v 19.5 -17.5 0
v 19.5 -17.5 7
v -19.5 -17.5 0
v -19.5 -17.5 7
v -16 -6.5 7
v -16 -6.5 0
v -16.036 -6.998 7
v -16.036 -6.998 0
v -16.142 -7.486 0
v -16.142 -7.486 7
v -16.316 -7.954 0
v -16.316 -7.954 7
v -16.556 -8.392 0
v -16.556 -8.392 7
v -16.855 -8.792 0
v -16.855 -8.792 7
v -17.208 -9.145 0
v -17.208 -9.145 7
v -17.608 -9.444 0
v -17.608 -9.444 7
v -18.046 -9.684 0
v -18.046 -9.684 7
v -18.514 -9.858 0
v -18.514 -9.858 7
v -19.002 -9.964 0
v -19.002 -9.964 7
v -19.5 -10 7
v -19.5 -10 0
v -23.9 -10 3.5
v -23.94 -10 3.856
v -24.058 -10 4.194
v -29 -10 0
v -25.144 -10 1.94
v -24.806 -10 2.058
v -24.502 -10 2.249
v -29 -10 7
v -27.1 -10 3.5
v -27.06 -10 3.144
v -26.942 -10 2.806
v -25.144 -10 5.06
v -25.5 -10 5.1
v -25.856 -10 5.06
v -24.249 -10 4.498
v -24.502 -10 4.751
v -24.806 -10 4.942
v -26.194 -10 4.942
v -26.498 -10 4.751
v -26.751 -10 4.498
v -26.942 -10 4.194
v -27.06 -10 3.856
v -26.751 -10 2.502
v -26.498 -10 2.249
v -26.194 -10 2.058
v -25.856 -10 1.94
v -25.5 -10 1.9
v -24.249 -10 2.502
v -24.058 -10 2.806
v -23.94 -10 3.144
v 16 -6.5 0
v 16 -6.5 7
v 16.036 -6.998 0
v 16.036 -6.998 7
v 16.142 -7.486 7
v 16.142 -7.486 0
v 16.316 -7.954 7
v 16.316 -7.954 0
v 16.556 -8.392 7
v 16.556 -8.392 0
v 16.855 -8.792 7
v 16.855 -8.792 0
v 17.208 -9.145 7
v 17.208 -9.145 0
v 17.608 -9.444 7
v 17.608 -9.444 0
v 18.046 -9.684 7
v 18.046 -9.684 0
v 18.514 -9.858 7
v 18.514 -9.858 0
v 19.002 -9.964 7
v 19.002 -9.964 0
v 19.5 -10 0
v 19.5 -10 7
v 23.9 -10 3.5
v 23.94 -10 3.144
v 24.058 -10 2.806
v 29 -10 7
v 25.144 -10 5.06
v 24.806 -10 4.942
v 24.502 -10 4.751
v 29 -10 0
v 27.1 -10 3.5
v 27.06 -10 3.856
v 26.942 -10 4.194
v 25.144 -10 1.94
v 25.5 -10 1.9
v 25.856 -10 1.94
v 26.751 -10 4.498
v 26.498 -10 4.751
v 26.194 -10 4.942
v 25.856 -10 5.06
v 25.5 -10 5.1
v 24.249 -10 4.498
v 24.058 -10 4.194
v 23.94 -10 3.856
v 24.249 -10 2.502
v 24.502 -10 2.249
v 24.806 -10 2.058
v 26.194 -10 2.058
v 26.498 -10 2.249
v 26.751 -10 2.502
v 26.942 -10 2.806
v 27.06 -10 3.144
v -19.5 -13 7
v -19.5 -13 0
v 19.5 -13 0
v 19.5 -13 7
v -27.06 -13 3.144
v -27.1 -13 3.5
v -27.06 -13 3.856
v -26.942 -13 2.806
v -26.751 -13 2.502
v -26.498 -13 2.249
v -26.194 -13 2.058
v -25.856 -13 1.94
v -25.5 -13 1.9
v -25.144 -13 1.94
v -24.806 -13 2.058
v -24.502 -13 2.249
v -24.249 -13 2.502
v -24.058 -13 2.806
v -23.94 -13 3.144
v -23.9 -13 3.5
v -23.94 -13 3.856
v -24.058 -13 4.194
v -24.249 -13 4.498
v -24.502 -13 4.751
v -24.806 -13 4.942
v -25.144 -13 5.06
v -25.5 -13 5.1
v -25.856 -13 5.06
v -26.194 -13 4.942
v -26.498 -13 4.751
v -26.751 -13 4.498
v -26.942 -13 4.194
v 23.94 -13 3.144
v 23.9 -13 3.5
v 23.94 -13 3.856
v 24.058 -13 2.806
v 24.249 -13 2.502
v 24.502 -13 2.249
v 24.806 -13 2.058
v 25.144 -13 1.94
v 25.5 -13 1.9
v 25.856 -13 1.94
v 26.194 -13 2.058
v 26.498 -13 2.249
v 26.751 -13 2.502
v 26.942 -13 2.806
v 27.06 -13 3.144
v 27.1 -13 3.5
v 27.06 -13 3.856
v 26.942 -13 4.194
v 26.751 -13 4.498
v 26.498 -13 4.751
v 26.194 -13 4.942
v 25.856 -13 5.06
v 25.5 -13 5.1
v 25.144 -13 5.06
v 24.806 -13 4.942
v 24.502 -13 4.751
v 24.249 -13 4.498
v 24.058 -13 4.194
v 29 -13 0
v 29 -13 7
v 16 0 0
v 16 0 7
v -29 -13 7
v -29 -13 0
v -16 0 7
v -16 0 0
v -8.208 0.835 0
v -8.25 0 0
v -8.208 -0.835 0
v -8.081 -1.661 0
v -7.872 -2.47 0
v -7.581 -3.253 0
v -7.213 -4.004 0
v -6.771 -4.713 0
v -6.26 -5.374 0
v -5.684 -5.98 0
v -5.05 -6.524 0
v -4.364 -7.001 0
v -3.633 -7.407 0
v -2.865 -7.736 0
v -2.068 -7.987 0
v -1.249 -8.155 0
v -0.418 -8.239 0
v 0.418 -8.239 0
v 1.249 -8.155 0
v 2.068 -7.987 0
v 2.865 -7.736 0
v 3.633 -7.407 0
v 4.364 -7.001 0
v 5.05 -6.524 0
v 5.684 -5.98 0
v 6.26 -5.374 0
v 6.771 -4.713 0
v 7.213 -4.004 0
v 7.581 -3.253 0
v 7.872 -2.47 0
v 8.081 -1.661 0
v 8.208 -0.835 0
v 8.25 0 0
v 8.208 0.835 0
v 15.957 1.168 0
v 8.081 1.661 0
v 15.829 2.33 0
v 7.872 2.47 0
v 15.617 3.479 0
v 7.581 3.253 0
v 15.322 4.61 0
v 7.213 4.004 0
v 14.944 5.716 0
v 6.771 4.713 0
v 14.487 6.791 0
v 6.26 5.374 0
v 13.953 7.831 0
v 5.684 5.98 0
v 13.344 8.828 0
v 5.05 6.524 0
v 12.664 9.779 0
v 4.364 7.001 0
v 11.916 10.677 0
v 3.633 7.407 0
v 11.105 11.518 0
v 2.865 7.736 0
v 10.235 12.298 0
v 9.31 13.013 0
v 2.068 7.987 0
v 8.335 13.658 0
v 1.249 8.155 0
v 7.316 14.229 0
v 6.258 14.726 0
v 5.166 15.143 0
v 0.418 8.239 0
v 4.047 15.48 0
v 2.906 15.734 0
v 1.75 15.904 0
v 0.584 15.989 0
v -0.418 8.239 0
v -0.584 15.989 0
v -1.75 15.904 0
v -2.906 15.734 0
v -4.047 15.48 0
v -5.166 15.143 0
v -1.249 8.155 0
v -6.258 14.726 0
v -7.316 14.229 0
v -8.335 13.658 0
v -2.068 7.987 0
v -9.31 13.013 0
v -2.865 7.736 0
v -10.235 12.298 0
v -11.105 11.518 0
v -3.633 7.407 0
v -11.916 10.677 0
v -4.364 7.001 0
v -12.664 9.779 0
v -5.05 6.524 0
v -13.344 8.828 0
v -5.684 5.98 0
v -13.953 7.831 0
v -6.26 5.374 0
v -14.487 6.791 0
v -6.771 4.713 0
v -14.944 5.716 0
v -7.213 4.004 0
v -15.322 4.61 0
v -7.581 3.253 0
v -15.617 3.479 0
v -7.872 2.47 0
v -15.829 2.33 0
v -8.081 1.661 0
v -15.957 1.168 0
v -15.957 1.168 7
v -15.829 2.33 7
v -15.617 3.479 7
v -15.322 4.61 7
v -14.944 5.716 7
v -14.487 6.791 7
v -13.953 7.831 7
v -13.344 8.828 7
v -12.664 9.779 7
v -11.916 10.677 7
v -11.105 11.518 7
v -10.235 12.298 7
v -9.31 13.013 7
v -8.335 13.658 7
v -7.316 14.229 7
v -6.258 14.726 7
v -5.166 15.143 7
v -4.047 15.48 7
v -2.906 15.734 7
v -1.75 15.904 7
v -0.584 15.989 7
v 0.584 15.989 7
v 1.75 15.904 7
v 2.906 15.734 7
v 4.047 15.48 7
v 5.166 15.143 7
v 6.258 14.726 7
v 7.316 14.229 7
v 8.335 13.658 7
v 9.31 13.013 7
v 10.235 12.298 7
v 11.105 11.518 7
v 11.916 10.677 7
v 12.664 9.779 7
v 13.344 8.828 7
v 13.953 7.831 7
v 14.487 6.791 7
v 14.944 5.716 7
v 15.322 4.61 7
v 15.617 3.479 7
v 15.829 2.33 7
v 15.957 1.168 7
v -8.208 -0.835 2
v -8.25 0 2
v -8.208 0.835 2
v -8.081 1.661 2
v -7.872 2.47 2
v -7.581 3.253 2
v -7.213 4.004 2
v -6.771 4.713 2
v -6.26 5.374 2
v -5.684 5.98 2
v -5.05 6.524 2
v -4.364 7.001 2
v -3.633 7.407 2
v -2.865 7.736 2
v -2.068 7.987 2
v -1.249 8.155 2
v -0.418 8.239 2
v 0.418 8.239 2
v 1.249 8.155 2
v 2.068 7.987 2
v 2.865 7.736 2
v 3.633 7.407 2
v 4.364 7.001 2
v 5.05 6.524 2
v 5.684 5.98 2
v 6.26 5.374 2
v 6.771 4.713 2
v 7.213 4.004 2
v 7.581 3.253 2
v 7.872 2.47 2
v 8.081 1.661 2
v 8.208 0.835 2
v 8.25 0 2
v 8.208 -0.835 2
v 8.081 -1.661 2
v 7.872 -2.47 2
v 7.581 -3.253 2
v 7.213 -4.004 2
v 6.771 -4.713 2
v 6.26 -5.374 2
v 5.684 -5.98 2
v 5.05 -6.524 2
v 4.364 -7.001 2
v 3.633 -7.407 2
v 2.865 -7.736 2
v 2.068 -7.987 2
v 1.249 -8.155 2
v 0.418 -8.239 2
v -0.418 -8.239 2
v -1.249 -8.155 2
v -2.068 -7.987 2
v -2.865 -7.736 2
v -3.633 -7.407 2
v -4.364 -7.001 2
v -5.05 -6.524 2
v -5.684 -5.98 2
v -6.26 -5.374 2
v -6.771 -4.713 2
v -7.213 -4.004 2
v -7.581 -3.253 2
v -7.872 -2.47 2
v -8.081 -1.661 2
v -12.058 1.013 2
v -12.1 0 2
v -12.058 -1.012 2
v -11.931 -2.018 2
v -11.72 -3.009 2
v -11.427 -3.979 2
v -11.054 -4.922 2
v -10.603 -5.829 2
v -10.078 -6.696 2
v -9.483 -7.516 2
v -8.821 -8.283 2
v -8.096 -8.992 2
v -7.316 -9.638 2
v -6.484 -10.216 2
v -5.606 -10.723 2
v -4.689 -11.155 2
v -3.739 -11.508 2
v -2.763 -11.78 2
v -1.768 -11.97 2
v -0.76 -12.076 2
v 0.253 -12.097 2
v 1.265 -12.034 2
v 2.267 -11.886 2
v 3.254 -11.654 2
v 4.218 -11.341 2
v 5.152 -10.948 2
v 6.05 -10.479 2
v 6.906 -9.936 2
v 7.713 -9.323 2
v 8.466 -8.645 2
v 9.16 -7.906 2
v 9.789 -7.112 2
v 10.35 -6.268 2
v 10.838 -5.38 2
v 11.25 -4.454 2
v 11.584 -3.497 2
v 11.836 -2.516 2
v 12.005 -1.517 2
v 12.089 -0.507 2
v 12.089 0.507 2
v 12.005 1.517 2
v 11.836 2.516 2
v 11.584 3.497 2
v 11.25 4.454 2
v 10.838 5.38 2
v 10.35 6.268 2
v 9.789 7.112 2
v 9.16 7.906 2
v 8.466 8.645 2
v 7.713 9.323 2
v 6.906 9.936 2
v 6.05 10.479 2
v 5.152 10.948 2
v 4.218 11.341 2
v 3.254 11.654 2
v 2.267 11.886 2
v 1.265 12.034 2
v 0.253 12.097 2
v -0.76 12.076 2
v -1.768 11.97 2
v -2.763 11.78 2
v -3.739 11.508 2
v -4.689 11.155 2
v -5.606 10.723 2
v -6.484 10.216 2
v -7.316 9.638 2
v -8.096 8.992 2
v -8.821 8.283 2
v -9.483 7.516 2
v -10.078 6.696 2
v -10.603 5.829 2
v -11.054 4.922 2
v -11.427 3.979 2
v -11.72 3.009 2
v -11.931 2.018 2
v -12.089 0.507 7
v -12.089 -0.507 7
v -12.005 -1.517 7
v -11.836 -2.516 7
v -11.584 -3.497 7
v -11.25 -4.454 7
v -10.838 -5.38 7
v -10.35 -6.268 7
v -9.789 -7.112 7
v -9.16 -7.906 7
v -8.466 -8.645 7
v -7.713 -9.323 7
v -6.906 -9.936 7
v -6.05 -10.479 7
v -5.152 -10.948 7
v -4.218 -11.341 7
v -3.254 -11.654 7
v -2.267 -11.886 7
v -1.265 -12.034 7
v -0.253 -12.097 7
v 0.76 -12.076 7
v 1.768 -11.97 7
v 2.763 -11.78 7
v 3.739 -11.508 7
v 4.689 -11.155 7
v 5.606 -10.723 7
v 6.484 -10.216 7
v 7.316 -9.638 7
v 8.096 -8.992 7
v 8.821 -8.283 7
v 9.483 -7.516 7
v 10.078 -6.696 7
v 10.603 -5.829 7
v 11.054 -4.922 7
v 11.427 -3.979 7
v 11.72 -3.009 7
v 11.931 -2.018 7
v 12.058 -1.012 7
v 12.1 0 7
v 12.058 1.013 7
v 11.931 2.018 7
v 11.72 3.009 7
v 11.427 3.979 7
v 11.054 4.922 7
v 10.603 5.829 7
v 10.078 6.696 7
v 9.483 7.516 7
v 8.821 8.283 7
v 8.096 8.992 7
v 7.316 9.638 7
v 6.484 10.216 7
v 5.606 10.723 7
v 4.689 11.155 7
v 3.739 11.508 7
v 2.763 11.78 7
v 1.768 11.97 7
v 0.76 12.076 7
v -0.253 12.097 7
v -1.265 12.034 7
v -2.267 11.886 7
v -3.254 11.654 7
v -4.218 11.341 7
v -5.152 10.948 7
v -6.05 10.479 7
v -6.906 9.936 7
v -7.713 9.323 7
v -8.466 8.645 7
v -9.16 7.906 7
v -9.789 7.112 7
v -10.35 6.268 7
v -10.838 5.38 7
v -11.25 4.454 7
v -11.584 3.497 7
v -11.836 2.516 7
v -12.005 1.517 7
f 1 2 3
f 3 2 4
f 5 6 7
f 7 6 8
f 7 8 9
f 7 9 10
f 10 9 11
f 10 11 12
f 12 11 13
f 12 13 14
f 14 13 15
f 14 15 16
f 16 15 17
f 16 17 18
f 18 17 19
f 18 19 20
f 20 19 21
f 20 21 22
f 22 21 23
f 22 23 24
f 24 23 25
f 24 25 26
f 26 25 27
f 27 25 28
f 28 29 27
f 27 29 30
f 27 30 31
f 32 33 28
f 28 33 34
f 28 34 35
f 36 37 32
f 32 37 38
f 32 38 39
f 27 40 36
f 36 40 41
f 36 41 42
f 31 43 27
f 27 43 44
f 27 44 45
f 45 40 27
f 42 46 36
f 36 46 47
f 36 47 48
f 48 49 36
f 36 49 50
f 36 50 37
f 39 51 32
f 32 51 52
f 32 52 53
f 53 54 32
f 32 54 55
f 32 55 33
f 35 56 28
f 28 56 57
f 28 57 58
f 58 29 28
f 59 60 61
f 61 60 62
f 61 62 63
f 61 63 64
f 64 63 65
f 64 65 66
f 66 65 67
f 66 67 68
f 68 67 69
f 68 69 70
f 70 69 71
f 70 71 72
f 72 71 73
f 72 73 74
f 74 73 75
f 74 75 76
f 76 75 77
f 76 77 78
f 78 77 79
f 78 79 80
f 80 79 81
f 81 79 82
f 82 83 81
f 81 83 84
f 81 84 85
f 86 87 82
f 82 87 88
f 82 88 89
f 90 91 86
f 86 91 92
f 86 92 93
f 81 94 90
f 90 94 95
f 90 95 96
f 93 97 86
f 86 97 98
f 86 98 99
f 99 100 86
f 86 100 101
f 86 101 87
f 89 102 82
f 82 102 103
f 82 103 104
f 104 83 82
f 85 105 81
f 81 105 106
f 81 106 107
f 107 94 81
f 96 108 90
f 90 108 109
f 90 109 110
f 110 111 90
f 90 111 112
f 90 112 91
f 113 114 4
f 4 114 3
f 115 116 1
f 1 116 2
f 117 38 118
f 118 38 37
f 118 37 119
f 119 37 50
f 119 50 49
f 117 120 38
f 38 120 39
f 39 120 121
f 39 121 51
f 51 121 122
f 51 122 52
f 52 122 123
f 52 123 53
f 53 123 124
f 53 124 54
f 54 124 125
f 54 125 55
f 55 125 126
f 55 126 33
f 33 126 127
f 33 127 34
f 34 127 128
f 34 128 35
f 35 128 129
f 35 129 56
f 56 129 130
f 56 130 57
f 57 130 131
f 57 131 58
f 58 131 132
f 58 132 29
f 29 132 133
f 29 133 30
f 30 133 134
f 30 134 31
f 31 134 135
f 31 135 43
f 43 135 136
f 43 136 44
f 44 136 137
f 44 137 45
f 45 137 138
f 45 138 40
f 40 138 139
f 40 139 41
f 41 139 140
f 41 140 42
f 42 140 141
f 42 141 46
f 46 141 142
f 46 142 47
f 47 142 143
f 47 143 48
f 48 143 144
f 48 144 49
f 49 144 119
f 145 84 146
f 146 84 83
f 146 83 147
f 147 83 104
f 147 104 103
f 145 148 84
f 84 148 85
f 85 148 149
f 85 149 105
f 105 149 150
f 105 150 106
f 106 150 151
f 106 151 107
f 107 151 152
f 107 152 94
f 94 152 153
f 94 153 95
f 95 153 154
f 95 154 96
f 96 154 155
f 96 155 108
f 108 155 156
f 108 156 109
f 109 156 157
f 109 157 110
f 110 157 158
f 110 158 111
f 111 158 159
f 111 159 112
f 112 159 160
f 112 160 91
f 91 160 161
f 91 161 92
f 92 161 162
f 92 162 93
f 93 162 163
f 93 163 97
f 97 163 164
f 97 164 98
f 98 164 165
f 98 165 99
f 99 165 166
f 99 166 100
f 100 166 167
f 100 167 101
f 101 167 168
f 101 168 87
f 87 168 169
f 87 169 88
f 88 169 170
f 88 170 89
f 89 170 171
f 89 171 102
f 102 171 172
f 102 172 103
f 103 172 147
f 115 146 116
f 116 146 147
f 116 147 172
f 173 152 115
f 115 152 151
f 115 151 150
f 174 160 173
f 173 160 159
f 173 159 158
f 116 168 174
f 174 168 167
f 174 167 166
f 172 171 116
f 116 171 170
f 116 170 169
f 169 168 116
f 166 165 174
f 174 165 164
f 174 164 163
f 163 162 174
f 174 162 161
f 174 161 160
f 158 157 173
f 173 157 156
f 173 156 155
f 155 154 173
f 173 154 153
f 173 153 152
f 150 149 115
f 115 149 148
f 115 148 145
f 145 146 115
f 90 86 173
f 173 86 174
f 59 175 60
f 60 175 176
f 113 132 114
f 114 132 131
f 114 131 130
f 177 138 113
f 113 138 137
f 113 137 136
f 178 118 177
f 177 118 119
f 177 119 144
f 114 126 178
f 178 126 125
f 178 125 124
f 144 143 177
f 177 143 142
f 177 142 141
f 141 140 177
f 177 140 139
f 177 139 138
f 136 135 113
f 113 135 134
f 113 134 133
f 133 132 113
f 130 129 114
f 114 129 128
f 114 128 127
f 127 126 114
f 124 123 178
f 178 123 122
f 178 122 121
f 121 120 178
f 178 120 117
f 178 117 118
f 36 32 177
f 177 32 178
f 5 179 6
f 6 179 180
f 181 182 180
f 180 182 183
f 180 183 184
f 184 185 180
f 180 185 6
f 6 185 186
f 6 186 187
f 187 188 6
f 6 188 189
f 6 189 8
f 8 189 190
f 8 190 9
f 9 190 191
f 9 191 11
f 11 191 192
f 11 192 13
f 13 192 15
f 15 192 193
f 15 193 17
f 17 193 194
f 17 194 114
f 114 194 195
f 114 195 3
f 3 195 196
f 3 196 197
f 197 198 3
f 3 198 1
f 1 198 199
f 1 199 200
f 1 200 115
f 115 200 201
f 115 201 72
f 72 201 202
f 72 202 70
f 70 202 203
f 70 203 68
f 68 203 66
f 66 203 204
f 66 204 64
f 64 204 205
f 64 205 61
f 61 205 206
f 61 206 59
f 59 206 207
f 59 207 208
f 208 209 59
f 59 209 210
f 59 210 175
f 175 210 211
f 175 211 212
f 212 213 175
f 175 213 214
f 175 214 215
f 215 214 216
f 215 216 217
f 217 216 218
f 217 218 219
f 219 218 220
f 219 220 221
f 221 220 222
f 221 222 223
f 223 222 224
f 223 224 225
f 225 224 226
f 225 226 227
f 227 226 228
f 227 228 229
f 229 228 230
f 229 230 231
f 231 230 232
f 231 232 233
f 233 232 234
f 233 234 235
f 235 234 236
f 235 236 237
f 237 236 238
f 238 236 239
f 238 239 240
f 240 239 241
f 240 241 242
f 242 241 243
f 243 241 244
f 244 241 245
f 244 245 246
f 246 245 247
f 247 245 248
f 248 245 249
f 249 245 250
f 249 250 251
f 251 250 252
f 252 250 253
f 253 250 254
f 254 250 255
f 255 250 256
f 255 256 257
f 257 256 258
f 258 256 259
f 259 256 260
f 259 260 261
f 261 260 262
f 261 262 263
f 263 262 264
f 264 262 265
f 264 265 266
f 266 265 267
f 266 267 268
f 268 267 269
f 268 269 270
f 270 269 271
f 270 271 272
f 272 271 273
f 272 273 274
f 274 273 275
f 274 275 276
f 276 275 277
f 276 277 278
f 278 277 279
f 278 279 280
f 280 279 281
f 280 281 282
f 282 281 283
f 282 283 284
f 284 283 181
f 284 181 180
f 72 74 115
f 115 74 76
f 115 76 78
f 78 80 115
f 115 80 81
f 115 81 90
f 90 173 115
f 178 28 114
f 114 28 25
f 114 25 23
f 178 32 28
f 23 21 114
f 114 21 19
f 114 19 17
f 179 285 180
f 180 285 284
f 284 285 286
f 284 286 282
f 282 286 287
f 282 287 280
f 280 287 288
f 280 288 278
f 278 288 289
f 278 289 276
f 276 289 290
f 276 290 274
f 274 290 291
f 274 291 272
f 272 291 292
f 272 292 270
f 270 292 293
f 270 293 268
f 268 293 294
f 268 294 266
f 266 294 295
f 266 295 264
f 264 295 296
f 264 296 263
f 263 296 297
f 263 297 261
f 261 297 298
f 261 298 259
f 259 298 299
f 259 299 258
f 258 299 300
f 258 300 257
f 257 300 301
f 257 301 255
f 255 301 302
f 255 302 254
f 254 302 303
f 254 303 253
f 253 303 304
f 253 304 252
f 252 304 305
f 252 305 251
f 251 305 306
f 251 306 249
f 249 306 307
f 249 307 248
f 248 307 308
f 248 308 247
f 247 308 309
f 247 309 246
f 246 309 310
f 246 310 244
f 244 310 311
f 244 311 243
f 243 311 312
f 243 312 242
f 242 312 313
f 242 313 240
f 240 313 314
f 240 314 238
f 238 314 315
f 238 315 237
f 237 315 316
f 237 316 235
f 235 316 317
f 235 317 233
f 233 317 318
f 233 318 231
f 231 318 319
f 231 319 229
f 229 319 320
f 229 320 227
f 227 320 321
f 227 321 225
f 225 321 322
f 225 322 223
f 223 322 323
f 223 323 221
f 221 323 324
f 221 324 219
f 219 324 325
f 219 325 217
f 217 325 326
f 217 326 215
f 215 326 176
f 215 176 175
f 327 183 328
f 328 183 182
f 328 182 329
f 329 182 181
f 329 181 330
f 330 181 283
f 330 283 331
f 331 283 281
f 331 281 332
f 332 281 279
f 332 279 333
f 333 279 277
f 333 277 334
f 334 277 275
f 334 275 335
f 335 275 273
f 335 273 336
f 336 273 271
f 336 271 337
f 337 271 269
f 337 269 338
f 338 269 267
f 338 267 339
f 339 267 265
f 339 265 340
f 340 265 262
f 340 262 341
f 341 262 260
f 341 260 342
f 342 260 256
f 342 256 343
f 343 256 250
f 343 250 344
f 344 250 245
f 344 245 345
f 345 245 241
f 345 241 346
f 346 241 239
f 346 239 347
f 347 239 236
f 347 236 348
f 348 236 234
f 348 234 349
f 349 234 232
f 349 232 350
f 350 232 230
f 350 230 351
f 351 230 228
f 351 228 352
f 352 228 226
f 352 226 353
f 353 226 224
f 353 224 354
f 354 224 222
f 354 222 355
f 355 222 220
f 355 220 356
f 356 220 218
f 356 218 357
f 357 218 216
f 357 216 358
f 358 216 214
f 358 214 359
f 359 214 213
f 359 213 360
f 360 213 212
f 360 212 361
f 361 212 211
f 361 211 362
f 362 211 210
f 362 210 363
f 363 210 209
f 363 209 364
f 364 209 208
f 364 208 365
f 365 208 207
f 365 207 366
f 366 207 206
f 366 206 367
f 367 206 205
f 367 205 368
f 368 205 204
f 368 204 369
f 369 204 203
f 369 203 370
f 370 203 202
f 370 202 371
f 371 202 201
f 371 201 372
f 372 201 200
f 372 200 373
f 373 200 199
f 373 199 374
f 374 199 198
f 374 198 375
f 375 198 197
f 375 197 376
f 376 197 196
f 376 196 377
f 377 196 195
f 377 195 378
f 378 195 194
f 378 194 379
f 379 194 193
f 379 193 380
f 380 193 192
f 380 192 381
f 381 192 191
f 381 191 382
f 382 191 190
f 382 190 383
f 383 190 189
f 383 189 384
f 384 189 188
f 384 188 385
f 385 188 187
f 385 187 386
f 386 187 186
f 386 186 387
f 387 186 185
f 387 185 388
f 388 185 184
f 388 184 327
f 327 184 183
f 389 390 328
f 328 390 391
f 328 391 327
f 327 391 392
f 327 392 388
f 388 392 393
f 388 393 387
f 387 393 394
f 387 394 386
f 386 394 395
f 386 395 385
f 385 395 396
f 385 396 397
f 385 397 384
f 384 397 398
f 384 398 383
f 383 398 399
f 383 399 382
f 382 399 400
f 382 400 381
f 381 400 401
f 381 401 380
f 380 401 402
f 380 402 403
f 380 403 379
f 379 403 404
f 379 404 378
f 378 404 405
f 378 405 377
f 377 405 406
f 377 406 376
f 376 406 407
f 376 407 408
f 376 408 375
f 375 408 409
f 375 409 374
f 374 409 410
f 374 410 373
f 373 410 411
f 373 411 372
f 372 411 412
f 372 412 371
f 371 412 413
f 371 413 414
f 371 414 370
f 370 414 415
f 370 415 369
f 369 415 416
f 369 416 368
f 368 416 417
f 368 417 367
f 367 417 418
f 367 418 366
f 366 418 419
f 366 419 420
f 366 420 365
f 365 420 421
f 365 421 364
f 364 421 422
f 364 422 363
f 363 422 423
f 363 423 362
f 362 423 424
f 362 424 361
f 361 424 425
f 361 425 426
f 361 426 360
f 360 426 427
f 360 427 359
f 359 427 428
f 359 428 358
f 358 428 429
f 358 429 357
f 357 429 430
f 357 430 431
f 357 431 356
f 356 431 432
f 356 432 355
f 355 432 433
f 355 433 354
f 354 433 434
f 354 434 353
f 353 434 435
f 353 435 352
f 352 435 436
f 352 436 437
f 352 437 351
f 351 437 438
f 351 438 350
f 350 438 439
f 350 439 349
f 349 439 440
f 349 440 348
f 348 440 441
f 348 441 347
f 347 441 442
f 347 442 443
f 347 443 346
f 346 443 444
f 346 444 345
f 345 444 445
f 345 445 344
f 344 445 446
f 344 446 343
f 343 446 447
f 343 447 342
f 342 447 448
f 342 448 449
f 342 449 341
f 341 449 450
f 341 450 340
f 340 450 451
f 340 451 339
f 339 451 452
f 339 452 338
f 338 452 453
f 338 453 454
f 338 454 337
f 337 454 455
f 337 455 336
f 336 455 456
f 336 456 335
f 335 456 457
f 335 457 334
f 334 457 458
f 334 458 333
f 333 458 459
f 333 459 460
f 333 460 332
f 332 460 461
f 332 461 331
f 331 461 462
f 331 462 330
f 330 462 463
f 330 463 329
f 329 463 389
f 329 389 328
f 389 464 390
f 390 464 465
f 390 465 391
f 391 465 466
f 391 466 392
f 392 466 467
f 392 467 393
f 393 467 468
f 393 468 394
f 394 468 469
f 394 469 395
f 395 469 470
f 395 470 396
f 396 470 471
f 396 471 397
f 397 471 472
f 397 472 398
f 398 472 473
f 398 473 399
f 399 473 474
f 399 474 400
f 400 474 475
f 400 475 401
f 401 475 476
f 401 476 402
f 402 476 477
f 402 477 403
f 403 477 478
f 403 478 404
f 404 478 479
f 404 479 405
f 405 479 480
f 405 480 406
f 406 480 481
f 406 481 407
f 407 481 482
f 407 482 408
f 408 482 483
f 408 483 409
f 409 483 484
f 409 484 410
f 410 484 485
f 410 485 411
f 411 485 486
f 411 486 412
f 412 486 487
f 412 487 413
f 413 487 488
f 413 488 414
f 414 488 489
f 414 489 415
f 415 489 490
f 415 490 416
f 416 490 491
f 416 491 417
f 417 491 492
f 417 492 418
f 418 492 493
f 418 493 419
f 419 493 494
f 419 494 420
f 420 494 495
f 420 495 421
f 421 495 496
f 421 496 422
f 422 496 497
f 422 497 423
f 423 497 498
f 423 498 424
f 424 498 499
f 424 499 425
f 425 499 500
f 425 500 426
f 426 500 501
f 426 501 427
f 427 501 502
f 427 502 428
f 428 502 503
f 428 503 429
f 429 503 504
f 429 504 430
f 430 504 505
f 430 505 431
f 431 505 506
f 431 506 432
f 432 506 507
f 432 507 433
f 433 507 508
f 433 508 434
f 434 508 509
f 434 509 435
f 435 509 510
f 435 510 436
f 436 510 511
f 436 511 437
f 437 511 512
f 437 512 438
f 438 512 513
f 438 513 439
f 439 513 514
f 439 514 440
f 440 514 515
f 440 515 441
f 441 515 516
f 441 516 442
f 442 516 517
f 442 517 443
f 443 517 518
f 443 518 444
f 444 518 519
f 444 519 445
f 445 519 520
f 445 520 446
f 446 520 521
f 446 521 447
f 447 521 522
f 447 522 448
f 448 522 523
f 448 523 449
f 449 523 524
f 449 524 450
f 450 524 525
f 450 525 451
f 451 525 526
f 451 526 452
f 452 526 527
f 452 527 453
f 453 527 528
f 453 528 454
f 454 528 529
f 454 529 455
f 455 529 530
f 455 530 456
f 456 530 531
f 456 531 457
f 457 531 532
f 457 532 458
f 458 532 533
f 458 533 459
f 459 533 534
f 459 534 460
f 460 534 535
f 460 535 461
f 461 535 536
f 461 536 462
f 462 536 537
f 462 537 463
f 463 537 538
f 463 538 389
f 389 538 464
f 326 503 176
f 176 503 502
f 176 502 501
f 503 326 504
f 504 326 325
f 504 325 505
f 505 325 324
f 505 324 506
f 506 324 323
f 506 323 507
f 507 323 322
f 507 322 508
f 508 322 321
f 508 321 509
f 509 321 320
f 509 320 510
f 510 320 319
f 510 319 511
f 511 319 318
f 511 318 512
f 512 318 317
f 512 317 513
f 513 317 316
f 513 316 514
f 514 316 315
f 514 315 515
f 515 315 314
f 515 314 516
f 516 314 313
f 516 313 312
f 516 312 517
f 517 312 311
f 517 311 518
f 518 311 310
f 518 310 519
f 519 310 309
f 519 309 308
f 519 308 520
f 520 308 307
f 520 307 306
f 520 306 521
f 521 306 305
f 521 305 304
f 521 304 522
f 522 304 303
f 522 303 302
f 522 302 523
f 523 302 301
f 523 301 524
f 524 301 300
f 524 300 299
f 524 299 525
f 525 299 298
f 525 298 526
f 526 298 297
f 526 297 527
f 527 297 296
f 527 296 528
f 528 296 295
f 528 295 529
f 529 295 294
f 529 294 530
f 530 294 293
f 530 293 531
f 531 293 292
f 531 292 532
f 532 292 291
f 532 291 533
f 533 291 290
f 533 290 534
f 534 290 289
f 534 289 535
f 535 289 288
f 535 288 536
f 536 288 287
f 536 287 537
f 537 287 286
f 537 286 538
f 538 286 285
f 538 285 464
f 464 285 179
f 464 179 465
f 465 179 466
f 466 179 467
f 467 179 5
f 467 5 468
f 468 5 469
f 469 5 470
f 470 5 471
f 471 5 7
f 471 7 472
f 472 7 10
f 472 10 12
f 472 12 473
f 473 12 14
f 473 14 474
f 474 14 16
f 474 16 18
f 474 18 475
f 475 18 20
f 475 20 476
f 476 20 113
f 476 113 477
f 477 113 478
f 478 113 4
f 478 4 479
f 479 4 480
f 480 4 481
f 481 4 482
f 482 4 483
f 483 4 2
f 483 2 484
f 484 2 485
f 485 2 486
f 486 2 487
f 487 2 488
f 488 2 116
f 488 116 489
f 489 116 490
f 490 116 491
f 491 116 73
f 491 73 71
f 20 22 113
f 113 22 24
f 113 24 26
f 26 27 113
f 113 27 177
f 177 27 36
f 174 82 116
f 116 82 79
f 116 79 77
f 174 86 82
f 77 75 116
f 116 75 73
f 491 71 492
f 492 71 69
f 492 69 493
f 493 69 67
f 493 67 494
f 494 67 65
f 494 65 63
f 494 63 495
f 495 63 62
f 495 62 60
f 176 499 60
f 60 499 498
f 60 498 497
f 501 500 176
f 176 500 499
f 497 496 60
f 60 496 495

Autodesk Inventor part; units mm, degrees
ref_plane "YZ Plane" through (0, 0, 0) normal (1, 0, 0) x (0, 1, 0)
ref_plane "XZ Plane" through (0, 0, 0) normal (0, 1, 0) x (-1, 0, 0)
ref_plane "XY Plane" through (0, 0, 0) normal (0, 0, 1) x (1, 0, 0)
sketch "Skizze1" plane through (0, 0, 0) normal (0, 0, 1) x (1, 0, 0)
  line L0 (0, 22.4) -> (0, -22.4) projected
  line L1 (-22.4, 0) -> (22.4, 0) projected
  line L2 (-16, 16) -> (16, 16)
  line L3 (16, 16) -> (16, -16)
  line L4 (16, -16) -> (-16, -16)
  line L5 (-16, -16) -> (-16, 16)
  circle A0 centre (0, 0) radius 12.1
  dimension "d0" = 32
  dimension "d1" = 32
  dimension "d2" = 24.2
extrude "Extrusion1" add sketch "Skizze1" along normal blind 7 contours L2 L3 L1 A0 L0 | L0 A0 L1 L5 L2 | L1 L3 L4 L0 A0 | A0 L0 L4 L5 L1
sketch "Skizze2" plane through (16, -16, 0) normal (1, 0, 0) x (0, 0, -1)
  line L0 (-7, 32) -> (-7, 0) projected
  line L1 (0, 32) -> (0, 0) projected
  line L2 (-7, 0) -> (0, 0)
  line L3 (0, 0) -> (0, 6)
  line L4 (0, 6) -> (-7, 6)
  line L5 (-7, 6) -> (-7, 0)
  line L6 (0, 3) -> (-7, 3)
  point P0 (0, 16)
  point P1 (-7, 6)
  point P2 (0, 3)
  dimension "d5" = 6
sketch "Skizze3" plane through (-16, -16, 0) normal (-1, 0, 0) x (0, 0, 1)
  line L0 (7, 32) -> (7, 0) projected
  line L1 (0, 32) -> (0, 0) projected
  line L2 (7, 0) -> (0, 0)
  line L3 (0, 0) -> (0, 6)
  line L4 (0, 6) -> (7, 6)
  line L5 (7, 6) -> (7, 0)
  line L6 (0, 3) -> (7, 3)
  point P0 (0, 16)
  point P1 (7, 6)
  point P2 (0, 3)
  point P3 (7, 3)
  dimension "d6" = 6
sketch "Skizze4" plane through (0, 0, 0) normal (0, 0, -1) x (-1, 0, 0)
  circle A0 centre (0, 0) radius 12.1
  circle A1 centre (0, 0) radius 12.1 projected
  circle A2 centre (0, 0) radius 8.25
  dimension "d11" = 24.2
  dimension "d12" = 16.5
extrude "Extrusion4" add sketch "Skizze4" against normal blind 2
fillet "Rundung1" radius 16 2 edges at (16, 16, 3.5) (-16, 16, 3.5)
extrude "Extrusion6" add sketch "Skizze3" along normal blind 13 contours L0 L6 L1 L4
extrude "Extrusion7" add sketch "Skizze2" along normal blind 13 contours L4 L1 L6 L0
sketch "Skizze6" plane through (16, -10, 7) normal (0, 1, 0) x (1, 0, 0)
  circle A0 centre (9.5, 3.5) radius 1.6
  line L0 (0, 7) -> (13, 7) projected
  line L1 (13, 7) -> (13, 0) projected
  circle A1 centre (-41.5, 3.5) radius 1.6
  line L2 (-45, 0) -> (-45, 7) projected
  line L3 (-32, 7) -> (-45, 7) projected
  point P0 (-16, 7)
  dimension "d29" = 3.2
  dimension "d30" = 3.5
  dimension "d31" = 3.5
  dimension "d32" = 3.2
  dimension "d33" = 3.5
  dimension "d34" = 3.5
extrude "Extrusion8" cut sketch "Skizze6" against normal up to surface (3 mm away)
sketch "Skizze7" plane through (16, -16, 7) normal (1, 0, 0) x (0, 0, -1)
  line L0 (7, 0) -> (0, 0) projected
  line L1 (0, 3) -> (0, 0) projected
  line L2 (7, 0) -> (0, 0)
  line L3 (0, 0) -> (0, 3)
  line L4 (0, 3) -> (7, 3)
  line L5 (7, 3) -> (7, 0)
  point P0 (7, 16)
extrude "Extrusion9" add sketch "Skizze7" along normal blind 3.5
sketch "Skizze8" plane through (-16, -16, 0) normal (-1, 0, 0) x (0, 0, 1)
  line L0 (0, 0) -> (7, 0) projected
  line L1 (0, 0) -> (0, 3) projected
  line L2 (7, 0) -> (0, 0)
  line L3 (0, 0) -> (0, 3)
  line L4 (0, 3) -> (7, 3)
  line L5 (7, 3) -> (7, 0)
  point P0 (0, 16)
extrude "Extrusion10" add sketch "Skizze8" along normal blind 3.5
fillet "Rundung3" radius 3.5 2 edges at (16, -10, 3.5) (-16, -10, 3.5)
sketch "Skizze9" plane through (19.5, -16, 0) normal (0, -1, 0) x (1, 0, 0)
  line L0 (0, 7) -> (-39, 7) projected
  line L1 (0, 0) -> (9.5, 0) projected
  line L2 (-39, 7) -> (0, 7)
  line L3 (0, 7) -> (0, 0)
  line L4 (0, 0) -> (-39, 0)
  line L5 (-39, 0) -> (-39, 7)
  point P0 (-19.5, 0)
extrude "Extrusion11" add sketch "Skizze9" along normal blind 1.5
properties part number "_3D-Druck"
